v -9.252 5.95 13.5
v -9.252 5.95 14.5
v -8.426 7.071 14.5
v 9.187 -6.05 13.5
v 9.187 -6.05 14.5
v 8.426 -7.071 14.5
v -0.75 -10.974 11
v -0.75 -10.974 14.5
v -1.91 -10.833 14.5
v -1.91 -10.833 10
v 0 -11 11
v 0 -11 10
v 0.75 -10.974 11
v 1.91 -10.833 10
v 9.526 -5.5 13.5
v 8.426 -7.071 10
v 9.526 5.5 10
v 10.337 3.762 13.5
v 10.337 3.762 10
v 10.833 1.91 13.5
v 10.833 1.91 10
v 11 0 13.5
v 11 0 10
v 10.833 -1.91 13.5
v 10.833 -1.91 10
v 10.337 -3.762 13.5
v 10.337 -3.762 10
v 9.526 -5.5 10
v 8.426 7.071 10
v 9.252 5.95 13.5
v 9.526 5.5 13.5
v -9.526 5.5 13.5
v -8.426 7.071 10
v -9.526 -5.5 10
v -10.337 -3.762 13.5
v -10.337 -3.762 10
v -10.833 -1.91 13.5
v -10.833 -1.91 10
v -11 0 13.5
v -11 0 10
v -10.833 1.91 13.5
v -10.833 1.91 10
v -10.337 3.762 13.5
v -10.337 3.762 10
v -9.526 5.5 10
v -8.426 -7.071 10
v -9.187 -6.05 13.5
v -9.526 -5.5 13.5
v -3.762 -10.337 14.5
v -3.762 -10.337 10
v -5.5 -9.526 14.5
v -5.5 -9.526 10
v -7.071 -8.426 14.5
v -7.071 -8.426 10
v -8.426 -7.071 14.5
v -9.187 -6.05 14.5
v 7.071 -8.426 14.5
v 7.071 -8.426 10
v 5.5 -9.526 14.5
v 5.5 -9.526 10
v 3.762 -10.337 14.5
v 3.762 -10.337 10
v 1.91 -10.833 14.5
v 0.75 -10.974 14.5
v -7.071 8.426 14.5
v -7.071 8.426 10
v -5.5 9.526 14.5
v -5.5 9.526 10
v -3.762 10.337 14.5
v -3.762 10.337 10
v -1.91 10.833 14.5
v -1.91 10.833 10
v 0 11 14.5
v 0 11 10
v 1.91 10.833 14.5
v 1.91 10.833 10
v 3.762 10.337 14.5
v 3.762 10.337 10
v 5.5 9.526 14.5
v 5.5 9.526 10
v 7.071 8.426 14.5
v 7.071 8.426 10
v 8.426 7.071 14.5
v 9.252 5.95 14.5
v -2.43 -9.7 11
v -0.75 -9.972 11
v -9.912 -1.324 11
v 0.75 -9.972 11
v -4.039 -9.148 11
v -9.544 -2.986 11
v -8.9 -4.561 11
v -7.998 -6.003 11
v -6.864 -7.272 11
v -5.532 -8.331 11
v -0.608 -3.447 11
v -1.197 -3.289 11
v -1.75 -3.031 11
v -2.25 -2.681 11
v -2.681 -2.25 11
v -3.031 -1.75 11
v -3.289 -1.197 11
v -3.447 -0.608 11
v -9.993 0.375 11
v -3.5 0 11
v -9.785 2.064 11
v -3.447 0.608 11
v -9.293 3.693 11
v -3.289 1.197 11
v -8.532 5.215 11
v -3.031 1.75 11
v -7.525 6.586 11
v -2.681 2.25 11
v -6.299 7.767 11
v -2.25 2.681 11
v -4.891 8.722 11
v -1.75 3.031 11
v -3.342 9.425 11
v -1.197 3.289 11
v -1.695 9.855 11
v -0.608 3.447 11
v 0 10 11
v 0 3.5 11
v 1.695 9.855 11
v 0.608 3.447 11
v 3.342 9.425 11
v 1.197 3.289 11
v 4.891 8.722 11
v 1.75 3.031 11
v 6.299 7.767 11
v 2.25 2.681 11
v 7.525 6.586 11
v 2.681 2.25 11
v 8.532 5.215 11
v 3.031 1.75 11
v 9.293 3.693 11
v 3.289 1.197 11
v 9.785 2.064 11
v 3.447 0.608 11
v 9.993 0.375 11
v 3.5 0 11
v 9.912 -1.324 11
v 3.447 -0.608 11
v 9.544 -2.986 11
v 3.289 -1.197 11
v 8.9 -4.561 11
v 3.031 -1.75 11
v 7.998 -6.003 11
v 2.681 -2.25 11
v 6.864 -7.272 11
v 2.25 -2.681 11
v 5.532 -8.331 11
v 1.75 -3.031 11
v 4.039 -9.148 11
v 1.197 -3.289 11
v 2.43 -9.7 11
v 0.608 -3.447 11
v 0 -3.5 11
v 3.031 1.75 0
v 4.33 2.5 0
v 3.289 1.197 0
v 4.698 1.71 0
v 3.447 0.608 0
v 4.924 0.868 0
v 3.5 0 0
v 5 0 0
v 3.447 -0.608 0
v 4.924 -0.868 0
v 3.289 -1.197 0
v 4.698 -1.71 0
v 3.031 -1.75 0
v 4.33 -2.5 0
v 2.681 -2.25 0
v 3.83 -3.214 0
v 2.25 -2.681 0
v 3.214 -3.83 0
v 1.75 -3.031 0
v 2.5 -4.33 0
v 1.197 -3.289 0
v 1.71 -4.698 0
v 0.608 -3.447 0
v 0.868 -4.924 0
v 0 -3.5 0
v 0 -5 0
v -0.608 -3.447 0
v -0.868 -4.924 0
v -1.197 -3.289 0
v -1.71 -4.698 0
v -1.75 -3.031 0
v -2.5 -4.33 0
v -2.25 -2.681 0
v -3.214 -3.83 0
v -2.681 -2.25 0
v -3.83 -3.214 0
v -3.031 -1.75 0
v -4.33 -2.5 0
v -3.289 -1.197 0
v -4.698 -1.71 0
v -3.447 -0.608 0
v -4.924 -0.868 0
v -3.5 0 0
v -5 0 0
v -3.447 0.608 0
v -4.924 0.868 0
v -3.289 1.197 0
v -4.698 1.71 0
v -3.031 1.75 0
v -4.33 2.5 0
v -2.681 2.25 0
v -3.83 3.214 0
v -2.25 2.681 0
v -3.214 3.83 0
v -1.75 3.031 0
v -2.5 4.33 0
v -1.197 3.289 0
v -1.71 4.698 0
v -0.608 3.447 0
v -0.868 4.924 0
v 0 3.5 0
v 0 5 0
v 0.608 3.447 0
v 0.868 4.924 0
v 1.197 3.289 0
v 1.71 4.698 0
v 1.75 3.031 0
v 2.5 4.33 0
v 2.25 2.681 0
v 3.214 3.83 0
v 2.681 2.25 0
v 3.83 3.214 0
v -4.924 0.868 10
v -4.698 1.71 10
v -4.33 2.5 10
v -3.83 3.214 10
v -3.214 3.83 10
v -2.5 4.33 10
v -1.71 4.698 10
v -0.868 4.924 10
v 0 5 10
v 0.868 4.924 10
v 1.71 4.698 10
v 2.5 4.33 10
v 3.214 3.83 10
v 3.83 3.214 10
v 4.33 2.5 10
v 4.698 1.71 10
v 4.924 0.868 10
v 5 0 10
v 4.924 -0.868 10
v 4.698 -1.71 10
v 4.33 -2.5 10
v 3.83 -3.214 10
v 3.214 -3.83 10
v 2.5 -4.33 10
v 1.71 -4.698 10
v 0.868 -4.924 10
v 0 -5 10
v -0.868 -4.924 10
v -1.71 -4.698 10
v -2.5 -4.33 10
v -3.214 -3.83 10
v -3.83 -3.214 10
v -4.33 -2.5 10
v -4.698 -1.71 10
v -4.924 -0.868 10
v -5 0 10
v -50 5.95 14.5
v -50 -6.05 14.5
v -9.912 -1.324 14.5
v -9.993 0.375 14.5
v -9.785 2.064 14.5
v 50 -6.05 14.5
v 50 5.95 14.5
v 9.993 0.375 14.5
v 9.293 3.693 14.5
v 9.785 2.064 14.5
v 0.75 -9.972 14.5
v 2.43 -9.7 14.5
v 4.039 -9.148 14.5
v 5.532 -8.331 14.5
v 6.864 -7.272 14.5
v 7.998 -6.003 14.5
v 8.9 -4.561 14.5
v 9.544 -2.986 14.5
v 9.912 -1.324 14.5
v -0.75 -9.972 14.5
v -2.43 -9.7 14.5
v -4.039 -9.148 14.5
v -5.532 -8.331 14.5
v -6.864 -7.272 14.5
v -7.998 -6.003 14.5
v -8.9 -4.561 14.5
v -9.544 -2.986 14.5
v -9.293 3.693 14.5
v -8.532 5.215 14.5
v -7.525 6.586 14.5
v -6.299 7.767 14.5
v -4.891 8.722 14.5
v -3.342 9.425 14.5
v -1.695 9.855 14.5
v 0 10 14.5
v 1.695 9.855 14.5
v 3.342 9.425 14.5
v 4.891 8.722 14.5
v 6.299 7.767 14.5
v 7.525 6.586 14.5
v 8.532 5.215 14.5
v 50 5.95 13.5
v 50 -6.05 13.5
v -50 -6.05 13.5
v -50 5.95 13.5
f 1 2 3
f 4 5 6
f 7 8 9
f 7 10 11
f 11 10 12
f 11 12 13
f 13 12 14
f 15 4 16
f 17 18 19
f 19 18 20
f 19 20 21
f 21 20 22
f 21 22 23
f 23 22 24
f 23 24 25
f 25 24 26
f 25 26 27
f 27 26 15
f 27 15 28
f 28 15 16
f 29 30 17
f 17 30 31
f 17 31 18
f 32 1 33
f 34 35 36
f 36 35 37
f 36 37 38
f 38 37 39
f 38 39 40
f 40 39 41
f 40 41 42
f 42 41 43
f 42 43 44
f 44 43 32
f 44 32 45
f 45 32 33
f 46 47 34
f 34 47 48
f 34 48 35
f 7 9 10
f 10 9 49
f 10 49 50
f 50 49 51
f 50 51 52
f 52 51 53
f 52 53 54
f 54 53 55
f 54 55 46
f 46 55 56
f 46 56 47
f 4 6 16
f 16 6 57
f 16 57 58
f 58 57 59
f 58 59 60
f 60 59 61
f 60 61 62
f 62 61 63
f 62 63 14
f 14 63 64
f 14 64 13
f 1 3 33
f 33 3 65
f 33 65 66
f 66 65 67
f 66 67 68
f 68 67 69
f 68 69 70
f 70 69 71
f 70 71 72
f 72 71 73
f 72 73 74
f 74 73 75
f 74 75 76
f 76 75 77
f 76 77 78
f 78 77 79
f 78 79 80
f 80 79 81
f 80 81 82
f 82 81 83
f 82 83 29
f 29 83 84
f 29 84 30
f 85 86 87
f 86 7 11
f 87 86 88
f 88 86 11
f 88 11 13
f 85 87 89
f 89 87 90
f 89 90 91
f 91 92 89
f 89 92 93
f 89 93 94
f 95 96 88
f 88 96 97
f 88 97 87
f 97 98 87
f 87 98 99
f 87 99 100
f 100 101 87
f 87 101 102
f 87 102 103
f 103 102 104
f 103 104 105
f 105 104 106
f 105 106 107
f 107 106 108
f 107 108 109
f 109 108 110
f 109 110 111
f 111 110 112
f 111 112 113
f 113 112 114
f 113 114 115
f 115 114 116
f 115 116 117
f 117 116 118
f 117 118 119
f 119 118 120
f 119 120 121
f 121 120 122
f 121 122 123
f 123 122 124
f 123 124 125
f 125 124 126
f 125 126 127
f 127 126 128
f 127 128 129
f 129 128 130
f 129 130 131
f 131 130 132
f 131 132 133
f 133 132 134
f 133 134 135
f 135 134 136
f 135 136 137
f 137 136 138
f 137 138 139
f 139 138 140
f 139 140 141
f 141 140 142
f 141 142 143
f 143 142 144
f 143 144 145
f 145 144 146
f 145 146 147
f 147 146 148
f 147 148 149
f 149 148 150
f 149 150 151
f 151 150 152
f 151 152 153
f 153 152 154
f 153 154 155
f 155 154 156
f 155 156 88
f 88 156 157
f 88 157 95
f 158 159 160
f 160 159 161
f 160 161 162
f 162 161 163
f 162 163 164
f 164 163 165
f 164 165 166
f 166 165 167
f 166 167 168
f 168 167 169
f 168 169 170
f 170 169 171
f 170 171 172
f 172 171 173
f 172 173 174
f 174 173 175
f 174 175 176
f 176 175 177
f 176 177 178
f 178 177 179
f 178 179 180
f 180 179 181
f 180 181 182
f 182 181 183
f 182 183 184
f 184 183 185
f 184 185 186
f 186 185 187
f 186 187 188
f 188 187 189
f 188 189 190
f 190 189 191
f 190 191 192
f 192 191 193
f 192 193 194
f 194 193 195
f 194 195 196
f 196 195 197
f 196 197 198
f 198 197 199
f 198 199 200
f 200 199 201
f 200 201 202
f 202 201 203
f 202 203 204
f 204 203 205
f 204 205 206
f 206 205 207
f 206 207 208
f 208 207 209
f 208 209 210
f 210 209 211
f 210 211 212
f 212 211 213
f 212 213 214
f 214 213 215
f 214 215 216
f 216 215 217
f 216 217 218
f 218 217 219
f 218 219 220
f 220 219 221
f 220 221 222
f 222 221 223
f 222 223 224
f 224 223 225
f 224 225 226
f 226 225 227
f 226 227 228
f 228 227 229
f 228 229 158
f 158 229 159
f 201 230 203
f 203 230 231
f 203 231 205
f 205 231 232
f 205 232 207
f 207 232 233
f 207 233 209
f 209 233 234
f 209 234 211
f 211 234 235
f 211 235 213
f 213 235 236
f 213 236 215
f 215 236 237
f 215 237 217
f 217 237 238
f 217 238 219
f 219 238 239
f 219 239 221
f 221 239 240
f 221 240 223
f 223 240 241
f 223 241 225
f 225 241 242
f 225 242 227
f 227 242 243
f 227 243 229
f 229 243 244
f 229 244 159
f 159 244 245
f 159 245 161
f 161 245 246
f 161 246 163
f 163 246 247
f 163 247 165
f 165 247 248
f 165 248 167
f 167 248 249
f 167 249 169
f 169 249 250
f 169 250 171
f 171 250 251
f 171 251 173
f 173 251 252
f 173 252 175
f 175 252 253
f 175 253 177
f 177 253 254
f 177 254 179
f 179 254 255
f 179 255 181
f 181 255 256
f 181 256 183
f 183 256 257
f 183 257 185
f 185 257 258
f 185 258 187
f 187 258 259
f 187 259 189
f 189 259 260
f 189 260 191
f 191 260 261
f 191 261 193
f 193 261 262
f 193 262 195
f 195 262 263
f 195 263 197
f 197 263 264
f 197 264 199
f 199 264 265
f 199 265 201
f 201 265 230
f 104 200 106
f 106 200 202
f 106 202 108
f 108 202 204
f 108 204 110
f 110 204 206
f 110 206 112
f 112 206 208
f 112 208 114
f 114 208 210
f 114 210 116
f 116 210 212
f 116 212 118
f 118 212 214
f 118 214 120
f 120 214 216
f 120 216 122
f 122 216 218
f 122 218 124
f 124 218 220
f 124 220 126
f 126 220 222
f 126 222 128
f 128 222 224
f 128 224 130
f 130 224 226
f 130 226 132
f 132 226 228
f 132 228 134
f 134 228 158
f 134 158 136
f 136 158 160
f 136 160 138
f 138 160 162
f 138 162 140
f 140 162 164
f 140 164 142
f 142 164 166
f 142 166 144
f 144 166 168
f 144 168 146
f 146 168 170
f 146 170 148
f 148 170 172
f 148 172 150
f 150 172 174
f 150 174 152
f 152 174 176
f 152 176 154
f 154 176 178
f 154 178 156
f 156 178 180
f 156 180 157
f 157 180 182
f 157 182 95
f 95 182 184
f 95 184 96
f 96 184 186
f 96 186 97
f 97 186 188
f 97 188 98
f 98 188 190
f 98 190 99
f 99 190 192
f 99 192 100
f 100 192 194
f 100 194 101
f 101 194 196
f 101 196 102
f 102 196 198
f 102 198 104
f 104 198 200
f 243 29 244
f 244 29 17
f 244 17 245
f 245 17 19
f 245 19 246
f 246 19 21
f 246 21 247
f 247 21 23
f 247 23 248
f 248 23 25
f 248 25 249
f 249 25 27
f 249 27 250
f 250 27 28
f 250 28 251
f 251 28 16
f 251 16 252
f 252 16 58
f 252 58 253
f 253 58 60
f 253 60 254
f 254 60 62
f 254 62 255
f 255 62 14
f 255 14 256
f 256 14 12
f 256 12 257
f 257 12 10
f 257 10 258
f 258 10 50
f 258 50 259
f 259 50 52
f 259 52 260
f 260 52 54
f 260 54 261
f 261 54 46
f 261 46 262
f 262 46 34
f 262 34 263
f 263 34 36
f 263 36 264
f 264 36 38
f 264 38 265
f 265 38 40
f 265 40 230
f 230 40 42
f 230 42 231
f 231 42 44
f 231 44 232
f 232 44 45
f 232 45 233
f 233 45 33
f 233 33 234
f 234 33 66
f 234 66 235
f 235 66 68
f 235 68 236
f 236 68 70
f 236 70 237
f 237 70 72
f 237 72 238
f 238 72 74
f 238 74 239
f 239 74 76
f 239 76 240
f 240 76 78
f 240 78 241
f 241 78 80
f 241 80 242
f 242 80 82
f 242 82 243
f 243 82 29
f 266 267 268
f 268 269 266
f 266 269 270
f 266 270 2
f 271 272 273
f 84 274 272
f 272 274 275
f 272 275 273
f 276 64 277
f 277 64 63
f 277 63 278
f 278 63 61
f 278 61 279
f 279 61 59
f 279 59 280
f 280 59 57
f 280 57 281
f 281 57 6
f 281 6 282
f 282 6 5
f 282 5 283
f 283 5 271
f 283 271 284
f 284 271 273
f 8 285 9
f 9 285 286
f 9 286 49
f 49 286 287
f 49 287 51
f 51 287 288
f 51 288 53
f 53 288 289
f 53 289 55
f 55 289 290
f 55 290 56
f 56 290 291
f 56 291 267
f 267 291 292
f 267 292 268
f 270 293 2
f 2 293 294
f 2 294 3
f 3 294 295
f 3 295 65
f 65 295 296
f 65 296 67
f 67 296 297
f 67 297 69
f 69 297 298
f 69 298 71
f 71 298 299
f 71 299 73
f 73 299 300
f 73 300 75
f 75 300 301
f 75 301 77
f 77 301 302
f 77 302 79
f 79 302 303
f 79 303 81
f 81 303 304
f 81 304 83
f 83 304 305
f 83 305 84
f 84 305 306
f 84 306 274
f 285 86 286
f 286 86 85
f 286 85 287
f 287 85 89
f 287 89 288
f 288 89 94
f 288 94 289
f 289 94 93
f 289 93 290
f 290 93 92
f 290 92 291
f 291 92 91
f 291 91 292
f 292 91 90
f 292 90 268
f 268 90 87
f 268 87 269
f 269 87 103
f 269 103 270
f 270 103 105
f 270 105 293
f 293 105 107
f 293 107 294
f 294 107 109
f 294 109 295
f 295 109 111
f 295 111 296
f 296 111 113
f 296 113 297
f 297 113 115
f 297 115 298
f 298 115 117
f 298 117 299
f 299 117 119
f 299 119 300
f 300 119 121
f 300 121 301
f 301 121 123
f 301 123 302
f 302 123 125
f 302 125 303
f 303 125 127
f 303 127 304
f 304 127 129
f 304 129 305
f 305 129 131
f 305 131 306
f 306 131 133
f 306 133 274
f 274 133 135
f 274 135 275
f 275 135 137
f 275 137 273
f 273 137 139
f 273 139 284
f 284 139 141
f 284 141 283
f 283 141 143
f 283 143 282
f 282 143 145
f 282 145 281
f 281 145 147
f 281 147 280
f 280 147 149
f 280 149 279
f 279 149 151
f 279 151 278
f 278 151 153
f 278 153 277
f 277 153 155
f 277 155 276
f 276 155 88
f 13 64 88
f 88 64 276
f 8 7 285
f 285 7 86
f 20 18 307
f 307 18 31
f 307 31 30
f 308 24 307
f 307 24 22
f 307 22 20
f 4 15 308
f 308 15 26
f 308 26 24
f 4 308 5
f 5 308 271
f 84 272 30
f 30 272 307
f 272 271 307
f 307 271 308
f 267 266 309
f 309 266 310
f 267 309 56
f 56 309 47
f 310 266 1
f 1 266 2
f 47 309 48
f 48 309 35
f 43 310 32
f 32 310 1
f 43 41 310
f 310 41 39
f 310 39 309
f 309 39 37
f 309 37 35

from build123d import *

# Parameters (mm, degrees)
ESBO_O1_R                     = 5
ESBO_O1_R_2                   = 3.5
RESSALTO_EXTRUS_O1_DEPTH      = 10
ESBO_O2_R                     = 11
ESBO_O2_R_2                   = 3.5
RESSALTO_EXTRUS_O2_DEPTH      = 1
ESBO_O3_R                     = 11
ESBO_O3_R_2                   = 10
RESSALTO_EXTRUS_O3_DEPTH      = 3.5
CORTE_EXTRUS_O1_REACH         = 23.266
CORTE_EXTRUS_O1_END_RADIUS    = 11
ESBO_O4_W                     = 1.5
ESBO_O4_H                     = 3.5
RESSALTO_EXTRUS_O4_REACH      = 65.657
RESSALTO_EXTRUS_O4_END_RADIUS = 11
ESBO_O8_W                     = 1
ESBO_O8_H                     = 12


with BuildPart() as part:
    # Esboço1 → Ressalto-extrusão1 (new body)
    with BuildSketch(Plane.XY):
        Circle(ESBO_O1_R)
        Circle(ESBO_O1_R_2, mode=Mode.SUBTRACT)
    extrude(amount=RESSALTO_EXTRUS_O1_DEPTH)

    # Esboço2 → Ressalto-extrusão2 (add)
    with BuildSketch(Plane.XY.offset(10)):
        Circle(ESBO_O2_R)
        Circle(ESBO_O2_R_2, mode=Mode.SUBTRACT)
    extrude(amount=RESSALTO_EXTRUS_O2_DEPTH)

    # Esboço3 → Ressalto-extrusão3 (add)
    with BuildSketch(Plane.XY.offset(11)):
        Circle(ESBO_O3_R)
        Circle(ESBO_O3_R_2, mode=Mode.SUBTRACT)
    extrude(amount=RESSALTO_EXTRUS_O3_DEPTH)

    # Corte-extrusão1: up to this cylinder (the profile starts inside it)
    corte_extrus_o1_end = Plane(origin=(0, 0, 12.75), z_dir=(0, 0, -1)) * Cylinder(CORTE_EXTRUS_O1_END_RADIUS, 69.532, mode=Mode.PRIVATE)
    # Esboço4 → Corte-extrusão1 (cut, up to the surface)
    with BuildSketch(Plane(origin=(0, 0, 0), x_dir=(1, 0, 0), z_dir=(0, 1, 0)), mode=Mode.PRIVATE) as corte_extrus_o1_sk1:
        with Locations((0, -12.75)):
            Rectangle(ESBO_O4_W, ESBO_O4_H)
    corte_extrus_o1_tool1 = extrude(corte_extrus_o1_sk1.sketch, amount=-CORTE_EXTRUS_O1_REACH, mode=Mode.PRIVATE) & corte_extrus_o1_end
    add(corte_extrus_o1_tool1.solids().sort_by_distance((0, 0, 12.75))[0], mode=Mode.SUBTRACT)

    # Ressalto-extrusão4: up to this cylinder (the profile starts outside it)
    ressalto_extrus_o4_end = Plane(origin=(0, 0, 14), z_dir=(0, 0, -1)) * Cylinder(RESSALTO_EXTRUS_O4_END_RADIUS, 154.314, mode=Mode.PRIVATE)
    # Esboço8 → Ressalto-extrusão4 (add, up to the surface)
    with BuildSketch(Plane(origin=(50, 0, 0), x_dir=(0, 0, -1), z_dir=(1, 0, 0)), mode=Mode.PRIVATE) as ressalto_extrus_o4_sk1:
        with Locations((-14, -0.050414446)):
            Rectangle(ESBO_O8_W, ESBO_O8_H)
    ressalto_extrus_o4_tool1 = extrude(ressalto_extrus_o4_sk1.sketch, amount=-RESSALTO_EXTRUS_O4_REACH, mode=Mode.PRIVATE) - ressalto_extrus_o4_end
    ressalto_extrus_o4 = ressalto_extrus_o4_tool1.solids().sort_by_distance((50, -0.050414, 14))[0]
    add(ressalto_extrus_o4)

    # Espelhar1: Ressalto-extrusão4 across plane
    add(ressalto_extrus_o4.mirror(Plane(origin=(0, 0, 0), x_dir=(0, 0, 1), z_dir=(1, 0, 0))))


solid = part.part
